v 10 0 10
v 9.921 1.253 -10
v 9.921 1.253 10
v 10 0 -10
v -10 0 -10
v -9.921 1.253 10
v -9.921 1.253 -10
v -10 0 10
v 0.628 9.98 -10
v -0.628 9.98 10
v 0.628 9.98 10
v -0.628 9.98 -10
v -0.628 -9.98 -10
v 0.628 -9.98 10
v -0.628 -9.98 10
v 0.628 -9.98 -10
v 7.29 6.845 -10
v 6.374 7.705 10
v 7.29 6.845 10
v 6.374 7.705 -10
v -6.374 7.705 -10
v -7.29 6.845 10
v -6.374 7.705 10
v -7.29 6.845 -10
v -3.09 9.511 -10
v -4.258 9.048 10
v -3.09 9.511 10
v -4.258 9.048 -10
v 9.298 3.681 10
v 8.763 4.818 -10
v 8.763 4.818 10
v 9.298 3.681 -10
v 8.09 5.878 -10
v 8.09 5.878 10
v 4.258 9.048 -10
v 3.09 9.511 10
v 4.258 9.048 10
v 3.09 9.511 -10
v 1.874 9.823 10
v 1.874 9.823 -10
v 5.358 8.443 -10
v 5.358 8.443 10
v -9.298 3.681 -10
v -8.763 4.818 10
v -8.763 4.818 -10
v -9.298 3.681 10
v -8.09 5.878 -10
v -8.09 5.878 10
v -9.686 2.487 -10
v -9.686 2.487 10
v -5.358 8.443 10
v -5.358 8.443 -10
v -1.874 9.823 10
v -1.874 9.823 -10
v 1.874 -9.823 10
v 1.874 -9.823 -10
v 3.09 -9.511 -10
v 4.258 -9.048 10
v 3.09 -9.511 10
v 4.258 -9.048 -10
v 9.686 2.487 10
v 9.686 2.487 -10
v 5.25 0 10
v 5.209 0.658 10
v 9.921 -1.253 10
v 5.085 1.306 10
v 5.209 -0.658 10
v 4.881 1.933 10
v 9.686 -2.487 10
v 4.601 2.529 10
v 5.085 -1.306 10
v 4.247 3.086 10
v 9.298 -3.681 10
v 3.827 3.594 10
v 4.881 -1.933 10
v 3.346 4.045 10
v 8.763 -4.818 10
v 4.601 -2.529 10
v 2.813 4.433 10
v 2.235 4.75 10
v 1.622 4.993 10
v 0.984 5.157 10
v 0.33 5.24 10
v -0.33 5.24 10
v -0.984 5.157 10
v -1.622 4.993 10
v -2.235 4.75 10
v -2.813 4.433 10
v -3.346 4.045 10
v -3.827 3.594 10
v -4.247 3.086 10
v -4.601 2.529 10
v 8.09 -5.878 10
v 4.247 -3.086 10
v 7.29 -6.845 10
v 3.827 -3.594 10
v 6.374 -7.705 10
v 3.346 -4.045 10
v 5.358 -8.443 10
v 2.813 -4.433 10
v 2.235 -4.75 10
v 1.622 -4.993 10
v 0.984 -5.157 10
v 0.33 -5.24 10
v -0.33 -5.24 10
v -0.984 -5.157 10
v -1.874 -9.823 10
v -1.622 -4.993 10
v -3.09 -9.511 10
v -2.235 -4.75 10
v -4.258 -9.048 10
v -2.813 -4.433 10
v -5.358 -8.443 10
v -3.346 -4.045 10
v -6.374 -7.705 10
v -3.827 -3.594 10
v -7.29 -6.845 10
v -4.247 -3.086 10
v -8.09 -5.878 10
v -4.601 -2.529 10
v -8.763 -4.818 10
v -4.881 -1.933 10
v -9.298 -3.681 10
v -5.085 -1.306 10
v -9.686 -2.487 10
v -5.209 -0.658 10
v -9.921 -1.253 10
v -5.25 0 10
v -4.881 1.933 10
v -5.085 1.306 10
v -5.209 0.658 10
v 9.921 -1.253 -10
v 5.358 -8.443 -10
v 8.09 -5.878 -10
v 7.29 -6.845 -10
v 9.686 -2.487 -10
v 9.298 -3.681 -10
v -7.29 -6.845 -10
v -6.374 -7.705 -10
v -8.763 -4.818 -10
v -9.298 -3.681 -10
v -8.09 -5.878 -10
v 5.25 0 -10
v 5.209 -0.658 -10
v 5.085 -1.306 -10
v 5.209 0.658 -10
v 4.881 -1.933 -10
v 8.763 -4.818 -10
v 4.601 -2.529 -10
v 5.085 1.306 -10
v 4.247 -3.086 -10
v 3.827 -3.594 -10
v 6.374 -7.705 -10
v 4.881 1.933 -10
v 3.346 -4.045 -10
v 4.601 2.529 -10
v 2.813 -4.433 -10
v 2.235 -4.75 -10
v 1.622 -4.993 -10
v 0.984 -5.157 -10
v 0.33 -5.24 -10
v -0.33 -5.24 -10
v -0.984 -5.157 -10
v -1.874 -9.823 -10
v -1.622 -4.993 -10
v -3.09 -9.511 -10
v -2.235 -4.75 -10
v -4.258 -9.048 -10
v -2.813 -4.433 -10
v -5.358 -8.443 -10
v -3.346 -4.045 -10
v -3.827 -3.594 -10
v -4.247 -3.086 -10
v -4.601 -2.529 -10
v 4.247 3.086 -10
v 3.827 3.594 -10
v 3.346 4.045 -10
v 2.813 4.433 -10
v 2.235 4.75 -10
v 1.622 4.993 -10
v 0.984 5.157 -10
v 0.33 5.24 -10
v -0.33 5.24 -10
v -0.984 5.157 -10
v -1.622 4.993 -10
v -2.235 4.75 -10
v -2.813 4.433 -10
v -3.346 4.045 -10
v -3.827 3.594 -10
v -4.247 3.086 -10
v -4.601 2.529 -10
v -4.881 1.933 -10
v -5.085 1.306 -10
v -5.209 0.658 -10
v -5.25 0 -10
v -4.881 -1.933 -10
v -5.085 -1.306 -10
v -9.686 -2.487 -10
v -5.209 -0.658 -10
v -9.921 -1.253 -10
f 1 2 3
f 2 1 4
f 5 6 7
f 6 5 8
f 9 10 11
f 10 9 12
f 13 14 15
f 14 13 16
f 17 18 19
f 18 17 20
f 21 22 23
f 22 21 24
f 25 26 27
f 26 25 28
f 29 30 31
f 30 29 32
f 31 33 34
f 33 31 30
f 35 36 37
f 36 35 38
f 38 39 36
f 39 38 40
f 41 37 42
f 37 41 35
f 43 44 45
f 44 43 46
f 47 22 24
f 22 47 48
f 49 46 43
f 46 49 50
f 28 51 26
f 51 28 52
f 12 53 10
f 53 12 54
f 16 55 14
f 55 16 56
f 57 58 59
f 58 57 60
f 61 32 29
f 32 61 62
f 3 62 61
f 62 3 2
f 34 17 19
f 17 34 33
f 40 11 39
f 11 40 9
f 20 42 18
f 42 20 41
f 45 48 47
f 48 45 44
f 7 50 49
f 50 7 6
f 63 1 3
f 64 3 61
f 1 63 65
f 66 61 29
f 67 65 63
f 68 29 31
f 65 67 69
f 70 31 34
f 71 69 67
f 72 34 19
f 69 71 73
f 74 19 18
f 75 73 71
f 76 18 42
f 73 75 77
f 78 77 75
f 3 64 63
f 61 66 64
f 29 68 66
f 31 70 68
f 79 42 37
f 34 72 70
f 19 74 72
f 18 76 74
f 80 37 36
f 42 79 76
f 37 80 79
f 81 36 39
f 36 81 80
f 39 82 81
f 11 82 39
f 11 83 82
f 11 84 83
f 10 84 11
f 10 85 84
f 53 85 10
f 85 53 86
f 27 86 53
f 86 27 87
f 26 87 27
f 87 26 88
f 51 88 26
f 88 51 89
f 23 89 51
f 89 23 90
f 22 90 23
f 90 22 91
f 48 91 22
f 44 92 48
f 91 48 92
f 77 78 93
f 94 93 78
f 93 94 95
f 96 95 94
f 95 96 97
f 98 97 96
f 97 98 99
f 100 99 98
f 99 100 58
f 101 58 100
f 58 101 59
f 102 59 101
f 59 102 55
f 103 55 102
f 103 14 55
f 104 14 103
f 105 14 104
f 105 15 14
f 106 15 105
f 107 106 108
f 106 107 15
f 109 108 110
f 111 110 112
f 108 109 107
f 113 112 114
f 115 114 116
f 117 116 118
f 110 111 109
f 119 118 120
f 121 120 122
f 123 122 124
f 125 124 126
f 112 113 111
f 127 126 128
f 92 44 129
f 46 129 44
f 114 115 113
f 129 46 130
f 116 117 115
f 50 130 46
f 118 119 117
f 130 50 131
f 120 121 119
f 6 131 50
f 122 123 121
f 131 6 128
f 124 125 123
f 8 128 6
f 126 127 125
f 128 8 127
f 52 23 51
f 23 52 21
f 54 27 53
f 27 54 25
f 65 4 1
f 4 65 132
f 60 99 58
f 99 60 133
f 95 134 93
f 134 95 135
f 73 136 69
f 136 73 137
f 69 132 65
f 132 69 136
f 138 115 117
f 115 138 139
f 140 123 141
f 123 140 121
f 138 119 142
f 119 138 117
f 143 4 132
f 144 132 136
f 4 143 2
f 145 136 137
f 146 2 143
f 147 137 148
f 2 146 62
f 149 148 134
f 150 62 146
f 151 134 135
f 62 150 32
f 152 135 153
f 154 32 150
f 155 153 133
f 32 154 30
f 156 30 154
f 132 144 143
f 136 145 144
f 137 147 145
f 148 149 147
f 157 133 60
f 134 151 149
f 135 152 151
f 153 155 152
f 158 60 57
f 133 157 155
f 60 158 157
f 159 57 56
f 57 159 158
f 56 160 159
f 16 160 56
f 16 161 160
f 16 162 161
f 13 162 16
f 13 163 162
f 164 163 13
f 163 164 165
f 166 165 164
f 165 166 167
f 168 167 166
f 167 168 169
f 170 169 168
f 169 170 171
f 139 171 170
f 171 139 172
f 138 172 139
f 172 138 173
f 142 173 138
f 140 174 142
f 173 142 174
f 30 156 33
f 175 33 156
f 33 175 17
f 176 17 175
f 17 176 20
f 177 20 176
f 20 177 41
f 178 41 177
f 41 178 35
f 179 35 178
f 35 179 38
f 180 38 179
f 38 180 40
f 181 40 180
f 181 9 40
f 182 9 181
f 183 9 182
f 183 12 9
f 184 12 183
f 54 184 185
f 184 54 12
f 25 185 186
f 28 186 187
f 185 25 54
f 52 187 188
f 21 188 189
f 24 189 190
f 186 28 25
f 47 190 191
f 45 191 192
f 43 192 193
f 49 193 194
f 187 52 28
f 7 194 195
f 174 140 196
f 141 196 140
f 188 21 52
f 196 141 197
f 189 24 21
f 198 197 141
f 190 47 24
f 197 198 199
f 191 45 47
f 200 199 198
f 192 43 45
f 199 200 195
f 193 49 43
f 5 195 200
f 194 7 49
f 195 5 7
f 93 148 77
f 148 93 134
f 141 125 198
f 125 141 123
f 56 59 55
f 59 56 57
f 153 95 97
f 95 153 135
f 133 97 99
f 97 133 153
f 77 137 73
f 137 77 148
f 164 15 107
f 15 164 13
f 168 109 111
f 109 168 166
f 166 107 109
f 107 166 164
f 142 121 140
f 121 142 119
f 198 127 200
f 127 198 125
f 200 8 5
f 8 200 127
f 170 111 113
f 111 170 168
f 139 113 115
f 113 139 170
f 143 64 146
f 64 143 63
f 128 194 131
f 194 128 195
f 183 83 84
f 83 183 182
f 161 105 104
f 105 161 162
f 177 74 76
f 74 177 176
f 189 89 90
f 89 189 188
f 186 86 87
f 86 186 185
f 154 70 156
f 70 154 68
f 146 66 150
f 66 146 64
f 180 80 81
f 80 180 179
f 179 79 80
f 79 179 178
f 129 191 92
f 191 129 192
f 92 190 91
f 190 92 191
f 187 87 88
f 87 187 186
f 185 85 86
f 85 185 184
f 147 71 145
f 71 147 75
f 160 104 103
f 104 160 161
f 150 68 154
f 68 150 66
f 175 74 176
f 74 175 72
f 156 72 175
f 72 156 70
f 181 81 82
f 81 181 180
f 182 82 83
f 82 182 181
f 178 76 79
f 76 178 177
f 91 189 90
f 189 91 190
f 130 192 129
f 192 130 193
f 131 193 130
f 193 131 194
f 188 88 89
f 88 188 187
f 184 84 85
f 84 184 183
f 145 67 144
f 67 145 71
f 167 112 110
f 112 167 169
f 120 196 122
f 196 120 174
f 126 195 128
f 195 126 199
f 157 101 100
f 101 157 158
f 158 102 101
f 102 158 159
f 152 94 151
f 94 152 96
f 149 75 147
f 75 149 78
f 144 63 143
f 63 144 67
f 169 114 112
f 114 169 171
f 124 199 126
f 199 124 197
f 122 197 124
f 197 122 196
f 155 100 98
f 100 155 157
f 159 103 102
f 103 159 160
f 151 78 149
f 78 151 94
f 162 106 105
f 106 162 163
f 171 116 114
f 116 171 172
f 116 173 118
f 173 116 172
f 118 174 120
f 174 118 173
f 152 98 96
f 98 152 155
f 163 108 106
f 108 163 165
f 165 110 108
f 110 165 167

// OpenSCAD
$fn = 50;


difference() {
	union() {
		translate(v = [0, 0, -10.0000000000]) {
			cylinder(h = 20, r = 10.0000000000);
		}
	}
	union() {
		translate(v = [0, 0, -100.0000000000]) {
			cylinder(h = 200, r = 5.2500000000);
		}
	}
}
